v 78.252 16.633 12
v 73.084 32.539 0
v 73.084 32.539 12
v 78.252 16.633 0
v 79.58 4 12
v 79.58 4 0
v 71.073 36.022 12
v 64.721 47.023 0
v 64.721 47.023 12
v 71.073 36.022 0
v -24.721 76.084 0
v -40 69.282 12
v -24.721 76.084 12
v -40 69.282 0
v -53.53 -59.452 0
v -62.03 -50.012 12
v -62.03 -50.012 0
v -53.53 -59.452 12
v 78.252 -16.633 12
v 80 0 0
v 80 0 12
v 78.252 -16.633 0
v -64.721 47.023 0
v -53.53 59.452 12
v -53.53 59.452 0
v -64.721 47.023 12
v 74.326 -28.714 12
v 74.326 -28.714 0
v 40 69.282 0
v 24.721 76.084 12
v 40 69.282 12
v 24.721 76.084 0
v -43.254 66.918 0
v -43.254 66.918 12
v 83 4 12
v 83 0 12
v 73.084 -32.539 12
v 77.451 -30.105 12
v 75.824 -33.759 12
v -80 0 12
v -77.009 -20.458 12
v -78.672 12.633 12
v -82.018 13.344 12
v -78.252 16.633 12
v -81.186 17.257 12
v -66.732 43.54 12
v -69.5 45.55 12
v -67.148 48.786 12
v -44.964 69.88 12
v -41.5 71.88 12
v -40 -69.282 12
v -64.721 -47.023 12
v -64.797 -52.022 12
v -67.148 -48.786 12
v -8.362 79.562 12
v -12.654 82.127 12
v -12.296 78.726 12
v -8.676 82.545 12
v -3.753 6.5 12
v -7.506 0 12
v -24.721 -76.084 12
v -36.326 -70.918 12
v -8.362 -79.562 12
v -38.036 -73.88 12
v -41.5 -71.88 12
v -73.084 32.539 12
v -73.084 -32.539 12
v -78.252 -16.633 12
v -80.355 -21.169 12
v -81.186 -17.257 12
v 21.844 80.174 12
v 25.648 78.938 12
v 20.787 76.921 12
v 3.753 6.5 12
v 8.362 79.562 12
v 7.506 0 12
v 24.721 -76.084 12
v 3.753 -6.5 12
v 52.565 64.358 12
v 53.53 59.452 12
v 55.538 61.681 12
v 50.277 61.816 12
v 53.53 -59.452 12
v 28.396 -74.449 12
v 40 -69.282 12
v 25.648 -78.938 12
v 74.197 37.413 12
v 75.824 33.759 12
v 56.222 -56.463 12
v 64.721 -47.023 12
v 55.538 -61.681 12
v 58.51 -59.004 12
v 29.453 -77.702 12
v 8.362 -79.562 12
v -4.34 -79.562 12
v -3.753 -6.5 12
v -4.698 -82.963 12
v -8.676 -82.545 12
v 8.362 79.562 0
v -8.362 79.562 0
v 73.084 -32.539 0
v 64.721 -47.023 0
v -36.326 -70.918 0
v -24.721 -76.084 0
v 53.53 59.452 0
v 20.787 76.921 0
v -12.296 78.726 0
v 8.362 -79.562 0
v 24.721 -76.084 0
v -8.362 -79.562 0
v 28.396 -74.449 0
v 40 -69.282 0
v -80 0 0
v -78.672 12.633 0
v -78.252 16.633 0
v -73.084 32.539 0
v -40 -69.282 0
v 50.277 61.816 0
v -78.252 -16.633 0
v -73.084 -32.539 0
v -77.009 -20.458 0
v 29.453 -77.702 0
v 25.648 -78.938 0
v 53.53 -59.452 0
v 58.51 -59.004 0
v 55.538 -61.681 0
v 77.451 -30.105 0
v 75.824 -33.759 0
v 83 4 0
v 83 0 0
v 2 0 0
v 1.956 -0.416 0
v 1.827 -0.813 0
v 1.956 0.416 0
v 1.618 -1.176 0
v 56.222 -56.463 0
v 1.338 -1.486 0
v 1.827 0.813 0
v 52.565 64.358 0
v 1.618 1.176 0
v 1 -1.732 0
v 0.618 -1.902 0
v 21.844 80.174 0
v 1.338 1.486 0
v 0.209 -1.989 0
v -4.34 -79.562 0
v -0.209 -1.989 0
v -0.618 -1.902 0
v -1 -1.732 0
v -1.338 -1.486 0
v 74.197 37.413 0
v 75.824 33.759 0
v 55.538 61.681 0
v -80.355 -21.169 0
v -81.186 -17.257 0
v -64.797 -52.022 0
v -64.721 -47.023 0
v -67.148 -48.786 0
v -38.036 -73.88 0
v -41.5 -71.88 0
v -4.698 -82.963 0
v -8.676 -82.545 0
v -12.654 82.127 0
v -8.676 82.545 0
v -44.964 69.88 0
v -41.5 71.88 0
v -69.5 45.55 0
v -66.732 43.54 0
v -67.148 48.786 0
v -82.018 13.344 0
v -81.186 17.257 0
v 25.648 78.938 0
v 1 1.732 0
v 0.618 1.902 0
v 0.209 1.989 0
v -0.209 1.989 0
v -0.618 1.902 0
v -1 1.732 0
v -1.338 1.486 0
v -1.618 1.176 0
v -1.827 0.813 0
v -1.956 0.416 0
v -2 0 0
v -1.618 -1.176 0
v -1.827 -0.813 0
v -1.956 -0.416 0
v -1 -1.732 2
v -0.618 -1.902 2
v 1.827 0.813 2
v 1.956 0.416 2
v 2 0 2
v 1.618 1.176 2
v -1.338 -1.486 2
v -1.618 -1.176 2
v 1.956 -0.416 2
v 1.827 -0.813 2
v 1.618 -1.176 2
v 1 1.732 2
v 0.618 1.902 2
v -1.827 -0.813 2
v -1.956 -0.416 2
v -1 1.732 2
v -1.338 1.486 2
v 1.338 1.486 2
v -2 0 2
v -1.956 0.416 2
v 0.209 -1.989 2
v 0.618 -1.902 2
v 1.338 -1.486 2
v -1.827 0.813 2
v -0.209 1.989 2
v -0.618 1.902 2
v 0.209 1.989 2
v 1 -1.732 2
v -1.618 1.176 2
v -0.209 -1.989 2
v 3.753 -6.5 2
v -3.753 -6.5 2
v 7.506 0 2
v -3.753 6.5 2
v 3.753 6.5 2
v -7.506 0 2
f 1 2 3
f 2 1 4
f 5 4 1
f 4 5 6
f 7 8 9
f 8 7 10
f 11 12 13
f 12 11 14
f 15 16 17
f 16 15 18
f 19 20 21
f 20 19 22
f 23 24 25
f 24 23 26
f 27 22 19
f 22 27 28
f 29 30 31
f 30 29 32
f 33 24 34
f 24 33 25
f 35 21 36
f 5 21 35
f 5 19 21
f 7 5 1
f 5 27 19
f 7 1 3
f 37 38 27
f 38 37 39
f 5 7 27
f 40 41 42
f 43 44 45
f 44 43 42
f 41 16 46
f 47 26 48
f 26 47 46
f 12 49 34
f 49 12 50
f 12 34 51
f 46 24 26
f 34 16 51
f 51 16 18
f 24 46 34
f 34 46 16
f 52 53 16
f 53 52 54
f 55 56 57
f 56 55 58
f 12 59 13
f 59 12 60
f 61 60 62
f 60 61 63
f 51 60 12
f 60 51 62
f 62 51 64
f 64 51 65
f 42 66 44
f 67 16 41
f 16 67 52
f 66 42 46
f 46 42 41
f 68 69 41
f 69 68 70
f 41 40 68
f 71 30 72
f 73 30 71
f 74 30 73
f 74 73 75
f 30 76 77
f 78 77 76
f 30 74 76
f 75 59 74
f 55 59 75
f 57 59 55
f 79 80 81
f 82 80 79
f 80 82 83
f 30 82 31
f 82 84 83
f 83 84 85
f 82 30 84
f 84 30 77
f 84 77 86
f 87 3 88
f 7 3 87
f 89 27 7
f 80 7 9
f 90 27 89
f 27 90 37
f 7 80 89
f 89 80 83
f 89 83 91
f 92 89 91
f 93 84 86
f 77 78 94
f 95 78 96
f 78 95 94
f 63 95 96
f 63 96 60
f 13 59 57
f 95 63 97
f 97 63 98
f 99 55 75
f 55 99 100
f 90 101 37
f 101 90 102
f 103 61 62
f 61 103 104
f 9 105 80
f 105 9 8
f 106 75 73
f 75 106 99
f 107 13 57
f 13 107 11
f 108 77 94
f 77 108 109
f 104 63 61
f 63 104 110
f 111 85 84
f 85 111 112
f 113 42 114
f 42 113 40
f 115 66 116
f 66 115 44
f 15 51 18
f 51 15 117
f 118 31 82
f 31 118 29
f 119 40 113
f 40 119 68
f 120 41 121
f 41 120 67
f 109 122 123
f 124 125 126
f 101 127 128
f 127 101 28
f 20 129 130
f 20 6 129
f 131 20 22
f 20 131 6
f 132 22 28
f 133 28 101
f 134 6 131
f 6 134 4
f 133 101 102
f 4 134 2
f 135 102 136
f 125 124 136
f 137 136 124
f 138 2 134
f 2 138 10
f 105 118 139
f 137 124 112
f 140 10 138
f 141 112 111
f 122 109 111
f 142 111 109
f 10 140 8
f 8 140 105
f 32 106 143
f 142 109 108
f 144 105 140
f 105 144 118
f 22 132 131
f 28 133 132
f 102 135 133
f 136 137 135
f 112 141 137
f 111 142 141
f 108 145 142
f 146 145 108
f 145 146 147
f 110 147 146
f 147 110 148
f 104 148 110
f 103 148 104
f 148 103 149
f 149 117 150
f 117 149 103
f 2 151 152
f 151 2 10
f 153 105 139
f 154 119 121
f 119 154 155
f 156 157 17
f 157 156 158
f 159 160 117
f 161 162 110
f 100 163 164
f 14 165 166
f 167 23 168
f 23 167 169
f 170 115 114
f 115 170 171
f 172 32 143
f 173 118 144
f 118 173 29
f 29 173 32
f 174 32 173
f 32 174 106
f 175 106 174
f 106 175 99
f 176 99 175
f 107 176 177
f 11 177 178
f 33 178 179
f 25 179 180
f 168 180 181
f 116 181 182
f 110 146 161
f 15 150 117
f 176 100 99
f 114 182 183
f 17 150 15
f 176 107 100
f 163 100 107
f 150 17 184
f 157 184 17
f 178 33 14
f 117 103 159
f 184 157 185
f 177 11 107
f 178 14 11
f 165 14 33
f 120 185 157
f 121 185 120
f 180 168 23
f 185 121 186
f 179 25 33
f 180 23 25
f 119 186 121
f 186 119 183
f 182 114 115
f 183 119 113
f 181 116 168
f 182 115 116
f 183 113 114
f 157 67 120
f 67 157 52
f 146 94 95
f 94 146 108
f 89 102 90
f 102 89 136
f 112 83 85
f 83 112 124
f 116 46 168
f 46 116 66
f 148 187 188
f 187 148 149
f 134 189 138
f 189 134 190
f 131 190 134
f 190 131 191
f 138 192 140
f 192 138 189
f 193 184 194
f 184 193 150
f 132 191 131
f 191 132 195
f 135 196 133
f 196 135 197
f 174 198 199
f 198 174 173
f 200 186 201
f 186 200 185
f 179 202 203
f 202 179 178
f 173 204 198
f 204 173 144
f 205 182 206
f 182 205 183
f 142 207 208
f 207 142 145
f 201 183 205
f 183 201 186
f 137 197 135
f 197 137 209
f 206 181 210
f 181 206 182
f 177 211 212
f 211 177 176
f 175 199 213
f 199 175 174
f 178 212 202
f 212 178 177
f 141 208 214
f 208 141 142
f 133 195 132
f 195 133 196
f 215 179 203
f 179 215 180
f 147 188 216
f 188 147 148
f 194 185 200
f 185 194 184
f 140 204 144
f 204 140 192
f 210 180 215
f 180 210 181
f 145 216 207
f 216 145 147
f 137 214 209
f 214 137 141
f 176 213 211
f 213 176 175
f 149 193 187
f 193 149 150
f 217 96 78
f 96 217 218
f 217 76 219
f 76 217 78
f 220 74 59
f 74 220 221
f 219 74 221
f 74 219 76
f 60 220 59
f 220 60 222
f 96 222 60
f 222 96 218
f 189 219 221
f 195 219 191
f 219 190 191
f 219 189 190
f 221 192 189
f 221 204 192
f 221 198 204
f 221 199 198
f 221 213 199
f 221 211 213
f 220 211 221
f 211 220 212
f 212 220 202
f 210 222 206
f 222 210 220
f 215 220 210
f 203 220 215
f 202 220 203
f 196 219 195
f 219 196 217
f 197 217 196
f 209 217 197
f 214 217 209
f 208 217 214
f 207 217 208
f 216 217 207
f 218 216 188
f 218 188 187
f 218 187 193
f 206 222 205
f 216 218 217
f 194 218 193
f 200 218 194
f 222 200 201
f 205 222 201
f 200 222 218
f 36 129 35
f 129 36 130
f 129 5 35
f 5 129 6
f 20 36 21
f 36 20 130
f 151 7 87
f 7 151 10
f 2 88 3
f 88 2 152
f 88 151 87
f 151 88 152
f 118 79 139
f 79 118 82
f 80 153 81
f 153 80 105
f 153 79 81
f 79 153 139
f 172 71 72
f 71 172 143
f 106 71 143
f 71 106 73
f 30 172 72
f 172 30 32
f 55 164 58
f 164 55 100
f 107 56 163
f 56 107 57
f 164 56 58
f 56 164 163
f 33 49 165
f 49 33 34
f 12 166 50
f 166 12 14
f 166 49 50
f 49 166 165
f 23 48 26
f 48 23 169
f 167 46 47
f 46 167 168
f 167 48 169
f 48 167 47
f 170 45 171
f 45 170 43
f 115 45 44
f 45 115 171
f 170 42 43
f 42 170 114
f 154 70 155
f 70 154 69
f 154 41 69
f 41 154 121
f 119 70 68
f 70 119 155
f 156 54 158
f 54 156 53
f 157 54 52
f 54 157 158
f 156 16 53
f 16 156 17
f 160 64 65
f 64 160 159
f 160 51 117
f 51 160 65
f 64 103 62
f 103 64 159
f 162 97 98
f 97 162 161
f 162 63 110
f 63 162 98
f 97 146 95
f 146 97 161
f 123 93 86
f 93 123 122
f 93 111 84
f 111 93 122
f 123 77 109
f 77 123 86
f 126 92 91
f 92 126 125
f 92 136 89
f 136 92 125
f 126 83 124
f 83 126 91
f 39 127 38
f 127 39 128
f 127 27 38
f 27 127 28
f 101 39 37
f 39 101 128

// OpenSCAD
$fs = 0.01;
wheel_radius = 80;

module wheel() {
    thickness = 12;
    
    difference() {
        cylinder(h=thickness,r=wheel_radius);
        translate([0,0,-2])  cylinder(h=14, r=2);
    }
}

difference() {
    wheel();
    translate([0,0,2]) hexagon(indiameter=13);    
}

function indiameter_to_diameter(d) = d/(sqrt(3)/2);
module hexagon(indiameter, height = 12){
    diameter = indiameter_to_diameter(indiameter);
    translate([0,0,0])  cylinder(d=diameter, h = height + 4, $fn=6);
};
module tooth() {
    cube([4, 4, 12]);
}

for(i=[0:15]) //n is number of teeth
    rotate([0,0,i*360/15])
        translate([wheel_radius - 1,0,0]) // r is radius of circle
            tooth();
